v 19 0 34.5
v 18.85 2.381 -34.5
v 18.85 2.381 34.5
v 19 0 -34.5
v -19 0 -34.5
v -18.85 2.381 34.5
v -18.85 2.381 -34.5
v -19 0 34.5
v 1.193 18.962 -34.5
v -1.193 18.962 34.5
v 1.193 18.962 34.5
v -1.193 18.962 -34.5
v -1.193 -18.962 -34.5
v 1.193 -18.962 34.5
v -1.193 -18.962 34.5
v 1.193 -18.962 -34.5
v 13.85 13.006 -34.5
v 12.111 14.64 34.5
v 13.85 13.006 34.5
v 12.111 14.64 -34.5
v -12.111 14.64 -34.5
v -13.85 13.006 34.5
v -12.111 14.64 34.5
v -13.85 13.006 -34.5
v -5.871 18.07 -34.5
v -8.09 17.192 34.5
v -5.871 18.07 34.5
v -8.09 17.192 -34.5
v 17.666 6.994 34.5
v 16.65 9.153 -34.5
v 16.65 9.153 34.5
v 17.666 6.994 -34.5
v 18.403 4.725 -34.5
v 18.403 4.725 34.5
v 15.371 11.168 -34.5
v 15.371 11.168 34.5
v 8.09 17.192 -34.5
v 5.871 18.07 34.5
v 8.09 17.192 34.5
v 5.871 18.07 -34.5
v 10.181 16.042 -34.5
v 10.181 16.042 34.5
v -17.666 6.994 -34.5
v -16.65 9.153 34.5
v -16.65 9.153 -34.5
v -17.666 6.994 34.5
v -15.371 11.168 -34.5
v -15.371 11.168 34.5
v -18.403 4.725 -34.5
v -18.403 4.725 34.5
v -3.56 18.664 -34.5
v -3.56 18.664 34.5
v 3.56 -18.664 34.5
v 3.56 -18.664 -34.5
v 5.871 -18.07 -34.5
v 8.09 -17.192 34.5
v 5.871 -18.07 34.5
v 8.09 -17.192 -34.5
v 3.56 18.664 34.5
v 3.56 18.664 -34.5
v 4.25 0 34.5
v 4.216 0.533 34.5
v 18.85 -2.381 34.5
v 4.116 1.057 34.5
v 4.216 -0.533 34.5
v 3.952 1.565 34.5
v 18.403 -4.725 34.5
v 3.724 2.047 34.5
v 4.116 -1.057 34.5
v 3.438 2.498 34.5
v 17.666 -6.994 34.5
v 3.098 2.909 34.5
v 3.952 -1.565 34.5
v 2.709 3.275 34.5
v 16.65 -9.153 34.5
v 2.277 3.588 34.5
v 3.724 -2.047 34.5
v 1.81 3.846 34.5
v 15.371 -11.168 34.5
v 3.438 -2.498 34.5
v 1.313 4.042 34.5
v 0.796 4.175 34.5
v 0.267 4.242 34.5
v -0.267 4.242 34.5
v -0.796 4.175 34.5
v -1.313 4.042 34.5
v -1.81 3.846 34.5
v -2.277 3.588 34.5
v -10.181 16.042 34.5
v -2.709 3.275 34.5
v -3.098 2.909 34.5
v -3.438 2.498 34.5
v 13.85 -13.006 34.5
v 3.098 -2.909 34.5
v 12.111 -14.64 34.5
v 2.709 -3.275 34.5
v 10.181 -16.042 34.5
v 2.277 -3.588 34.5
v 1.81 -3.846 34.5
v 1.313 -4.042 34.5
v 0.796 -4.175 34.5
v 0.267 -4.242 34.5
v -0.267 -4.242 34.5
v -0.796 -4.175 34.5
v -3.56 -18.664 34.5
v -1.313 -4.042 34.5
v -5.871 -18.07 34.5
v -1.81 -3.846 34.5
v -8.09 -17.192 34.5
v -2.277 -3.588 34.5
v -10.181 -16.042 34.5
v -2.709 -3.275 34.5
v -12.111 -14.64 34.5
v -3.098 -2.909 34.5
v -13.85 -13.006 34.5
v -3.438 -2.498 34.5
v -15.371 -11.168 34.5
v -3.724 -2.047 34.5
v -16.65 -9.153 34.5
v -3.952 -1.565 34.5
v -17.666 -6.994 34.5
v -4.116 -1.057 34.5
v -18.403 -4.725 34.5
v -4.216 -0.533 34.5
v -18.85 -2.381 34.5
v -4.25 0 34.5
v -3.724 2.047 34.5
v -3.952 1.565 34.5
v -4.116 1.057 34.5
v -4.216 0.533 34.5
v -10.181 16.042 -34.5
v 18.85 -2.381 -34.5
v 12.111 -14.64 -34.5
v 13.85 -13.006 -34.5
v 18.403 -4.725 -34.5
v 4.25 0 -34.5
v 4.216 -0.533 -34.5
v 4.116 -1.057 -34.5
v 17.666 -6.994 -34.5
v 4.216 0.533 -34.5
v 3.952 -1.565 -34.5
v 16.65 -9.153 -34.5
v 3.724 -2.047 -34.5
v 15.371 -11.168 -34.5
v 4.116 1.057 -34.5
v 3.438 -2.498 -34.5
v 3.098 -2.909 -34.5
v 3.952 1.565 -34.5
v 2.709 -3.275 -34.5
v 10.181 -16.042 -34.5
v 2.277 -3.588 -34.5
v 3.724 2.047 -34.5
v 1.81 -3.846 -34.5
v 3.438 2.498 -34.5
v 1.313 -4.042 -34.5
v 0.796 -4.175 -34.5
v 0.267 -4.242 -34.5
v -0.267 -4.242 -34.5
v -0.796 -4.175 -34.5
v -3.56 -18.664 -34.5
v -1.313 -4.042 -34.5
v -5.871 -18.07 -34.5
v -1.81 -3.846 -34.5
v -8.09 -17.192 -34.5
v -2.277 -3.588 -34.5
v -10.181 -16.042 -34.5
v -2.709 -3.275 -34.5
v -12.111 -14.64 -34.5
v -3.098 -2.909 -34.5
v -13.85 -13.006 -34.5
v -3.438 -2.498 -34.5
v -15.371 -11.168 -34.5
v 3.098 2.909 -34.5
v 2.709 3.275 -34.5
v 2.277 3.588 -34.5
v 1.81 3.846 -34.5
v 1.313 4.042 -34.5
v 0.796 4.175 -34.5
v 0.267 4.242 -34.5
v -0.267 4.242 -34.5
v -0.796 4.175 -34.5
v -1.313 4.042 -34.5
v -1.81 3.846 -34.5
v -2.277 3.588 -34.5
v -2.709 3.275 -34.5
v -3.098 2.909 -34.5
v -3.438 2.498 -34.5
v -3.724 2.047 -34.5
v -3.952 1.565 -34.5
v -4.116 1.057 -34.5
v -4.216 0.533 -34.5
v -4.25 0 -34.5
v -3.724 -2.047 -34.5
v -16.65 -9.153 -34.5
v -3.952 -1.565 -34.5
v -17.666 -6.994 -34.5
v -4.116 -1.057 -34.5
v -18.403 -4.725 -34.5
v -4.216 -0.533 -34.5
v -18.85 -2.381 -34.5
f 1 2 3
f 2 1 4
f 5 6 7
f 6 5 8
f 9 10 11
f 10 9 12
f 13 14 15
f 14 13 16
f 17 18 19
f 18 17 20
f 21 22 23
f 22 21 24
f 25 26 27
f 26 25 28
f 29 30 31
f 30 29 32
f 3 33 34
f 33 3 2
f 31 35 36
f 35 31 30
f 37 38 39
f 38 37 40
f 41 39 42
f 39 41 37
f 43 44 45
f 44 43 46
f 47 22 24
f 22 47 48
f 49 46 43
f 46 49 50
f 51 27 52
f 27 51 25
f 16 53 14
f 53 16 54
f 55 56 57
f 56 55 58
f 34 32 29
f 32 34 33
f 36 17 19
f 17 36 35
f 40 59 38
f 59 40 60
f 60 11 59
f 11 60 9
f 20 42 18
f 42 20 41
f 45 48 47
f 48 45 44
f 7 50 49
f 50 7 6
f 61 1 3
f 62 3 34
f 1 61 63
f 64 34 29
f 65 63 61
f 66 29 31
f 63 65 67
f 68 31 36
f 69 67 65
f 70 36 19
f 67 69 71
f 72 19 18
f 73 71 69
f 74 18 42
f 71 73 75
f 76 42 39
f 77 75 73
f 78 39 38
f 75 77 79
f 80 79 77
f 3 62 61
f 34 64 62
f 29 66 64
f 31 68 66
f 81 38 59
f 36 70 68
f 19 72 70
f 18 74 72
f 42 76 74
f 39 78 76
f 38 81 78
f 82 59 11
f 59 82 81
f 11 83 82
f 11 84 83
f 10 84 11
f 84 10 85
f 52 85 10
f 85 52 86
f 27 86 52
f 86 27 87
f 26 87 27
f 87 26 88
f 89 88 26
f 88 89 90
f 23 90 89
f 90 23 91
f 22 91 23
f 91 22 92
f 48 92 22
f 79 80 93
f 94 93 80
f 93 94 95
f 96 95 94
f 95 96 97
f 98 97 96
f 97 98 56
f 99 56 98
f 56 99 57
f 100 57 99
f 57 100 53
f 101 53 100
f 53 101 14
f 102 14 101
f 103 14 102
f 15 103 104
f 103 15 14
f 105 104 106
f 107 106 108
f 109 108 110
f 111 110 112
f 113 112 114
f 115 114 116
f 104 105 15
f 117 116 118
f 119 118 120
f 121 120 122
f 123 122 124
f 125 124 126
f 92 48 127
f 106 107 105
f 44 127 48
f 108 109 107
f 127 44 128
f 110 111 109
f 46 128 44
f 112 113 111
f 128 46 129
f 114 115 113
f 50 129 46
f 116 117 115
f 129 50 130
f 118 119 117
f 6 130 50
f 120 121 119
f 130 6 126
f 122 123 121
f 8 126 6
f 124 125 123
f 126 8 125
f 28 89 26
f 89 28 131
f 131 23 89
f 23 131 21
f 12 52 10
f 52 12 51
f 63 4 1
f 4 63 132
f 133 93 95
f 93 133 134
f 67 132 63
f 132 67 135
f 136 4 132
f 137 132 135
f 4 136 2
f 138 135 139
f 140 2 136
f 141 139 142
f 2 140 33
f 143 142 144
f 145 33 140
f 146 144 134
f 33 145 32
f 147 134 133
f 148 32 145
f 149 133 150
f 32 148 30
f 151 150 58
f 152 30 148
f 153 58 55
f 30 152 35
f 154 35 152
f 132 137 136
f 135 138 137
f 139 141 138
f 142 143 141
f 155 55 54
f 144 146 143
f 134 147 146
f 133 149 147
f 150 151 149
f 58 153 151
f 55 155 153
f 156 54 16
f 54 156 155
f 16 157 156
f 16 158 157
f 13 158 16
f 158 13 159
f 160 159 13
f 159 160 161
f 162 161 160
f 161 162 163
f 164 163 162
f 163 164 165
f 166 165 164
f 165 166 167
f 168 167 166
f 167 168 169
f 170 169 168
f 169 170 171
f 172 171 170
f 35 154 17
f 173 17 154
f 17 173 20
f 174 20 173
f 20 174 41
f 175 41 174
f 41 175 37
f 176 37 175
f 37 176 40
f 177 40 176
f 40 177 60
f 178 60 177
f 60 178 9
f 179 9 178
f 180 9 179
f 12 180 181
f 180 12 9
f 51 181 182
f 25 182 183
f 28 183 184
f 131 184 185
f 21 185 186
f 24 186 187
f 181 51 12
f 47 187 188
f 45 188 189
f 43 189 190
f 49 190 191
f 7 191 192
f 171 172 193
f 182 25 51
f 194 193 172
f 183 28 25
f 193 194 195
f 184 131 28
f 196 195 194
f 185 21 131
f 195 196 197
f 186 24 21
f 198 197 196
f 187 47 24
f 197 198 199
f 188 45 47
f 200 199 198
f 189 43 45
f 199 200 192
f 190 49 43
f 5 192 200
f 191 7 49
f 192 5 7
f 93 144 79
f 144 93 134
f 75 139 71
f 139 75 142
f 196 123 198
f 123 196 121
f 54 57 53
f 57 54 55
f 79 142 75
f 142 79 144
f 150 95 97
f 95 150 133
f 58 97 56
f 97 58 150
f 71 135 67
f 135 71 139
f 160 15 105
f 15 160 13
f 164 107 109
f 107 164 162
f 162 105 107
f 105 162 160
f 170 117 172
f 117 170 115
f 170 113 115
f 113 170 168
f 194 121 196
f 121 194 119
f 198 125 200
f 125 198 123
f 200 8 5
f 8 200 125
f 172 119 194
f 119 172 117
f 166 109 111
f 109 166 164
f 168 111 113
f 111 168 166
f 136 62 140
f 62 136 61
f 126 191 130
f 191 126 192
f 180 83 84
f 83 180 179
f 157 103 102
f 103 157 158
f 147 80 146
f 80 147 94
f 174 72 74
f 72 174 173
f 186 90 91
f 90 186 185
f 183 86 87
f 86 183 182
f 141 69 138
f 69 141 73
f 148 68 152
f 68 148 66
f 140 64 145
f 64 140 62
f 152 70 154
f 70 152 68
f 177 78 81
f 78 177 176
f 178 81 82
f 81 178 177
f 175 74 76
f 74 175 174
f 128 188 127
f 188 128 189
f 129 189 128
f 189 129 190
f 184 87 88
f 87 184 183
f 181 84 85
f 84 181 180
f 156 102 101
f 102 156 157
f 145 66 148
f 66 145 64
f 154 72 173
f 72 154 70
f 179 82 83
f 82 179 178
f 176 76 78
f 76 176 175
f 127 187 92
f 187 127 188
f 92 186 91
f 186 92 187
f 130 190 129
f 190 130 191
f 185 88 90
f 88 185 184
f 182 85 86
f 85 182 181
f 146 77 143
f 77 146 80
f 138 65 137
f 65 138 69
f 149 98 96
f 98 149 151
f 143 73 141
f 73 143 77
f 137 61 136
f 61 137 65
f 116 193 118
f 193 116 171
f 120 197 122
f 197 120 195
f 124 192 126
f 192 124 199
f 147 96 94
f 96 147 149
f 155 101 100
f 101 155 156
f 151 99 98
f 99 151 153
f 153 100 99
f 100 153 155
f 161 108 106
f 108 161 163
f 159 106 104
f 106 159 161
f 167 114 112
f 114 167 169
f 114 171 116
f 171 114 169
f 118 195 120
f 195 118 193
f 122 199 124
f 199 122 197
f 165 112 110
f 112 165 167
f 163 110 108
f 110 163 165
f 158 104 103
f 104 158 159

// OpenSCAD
$fn = 50;


difference() {
	union() {
		translate(v = [0, 0, -34.5000000000]) {
			cylinder(h = 69, r = 19.0000000000);
		}
	}
	union() {
		translate(v = [0, 0, -100.0000000000]) {
			cylinder(h = 200, r = 4.2500000000);
		}
	}
}
